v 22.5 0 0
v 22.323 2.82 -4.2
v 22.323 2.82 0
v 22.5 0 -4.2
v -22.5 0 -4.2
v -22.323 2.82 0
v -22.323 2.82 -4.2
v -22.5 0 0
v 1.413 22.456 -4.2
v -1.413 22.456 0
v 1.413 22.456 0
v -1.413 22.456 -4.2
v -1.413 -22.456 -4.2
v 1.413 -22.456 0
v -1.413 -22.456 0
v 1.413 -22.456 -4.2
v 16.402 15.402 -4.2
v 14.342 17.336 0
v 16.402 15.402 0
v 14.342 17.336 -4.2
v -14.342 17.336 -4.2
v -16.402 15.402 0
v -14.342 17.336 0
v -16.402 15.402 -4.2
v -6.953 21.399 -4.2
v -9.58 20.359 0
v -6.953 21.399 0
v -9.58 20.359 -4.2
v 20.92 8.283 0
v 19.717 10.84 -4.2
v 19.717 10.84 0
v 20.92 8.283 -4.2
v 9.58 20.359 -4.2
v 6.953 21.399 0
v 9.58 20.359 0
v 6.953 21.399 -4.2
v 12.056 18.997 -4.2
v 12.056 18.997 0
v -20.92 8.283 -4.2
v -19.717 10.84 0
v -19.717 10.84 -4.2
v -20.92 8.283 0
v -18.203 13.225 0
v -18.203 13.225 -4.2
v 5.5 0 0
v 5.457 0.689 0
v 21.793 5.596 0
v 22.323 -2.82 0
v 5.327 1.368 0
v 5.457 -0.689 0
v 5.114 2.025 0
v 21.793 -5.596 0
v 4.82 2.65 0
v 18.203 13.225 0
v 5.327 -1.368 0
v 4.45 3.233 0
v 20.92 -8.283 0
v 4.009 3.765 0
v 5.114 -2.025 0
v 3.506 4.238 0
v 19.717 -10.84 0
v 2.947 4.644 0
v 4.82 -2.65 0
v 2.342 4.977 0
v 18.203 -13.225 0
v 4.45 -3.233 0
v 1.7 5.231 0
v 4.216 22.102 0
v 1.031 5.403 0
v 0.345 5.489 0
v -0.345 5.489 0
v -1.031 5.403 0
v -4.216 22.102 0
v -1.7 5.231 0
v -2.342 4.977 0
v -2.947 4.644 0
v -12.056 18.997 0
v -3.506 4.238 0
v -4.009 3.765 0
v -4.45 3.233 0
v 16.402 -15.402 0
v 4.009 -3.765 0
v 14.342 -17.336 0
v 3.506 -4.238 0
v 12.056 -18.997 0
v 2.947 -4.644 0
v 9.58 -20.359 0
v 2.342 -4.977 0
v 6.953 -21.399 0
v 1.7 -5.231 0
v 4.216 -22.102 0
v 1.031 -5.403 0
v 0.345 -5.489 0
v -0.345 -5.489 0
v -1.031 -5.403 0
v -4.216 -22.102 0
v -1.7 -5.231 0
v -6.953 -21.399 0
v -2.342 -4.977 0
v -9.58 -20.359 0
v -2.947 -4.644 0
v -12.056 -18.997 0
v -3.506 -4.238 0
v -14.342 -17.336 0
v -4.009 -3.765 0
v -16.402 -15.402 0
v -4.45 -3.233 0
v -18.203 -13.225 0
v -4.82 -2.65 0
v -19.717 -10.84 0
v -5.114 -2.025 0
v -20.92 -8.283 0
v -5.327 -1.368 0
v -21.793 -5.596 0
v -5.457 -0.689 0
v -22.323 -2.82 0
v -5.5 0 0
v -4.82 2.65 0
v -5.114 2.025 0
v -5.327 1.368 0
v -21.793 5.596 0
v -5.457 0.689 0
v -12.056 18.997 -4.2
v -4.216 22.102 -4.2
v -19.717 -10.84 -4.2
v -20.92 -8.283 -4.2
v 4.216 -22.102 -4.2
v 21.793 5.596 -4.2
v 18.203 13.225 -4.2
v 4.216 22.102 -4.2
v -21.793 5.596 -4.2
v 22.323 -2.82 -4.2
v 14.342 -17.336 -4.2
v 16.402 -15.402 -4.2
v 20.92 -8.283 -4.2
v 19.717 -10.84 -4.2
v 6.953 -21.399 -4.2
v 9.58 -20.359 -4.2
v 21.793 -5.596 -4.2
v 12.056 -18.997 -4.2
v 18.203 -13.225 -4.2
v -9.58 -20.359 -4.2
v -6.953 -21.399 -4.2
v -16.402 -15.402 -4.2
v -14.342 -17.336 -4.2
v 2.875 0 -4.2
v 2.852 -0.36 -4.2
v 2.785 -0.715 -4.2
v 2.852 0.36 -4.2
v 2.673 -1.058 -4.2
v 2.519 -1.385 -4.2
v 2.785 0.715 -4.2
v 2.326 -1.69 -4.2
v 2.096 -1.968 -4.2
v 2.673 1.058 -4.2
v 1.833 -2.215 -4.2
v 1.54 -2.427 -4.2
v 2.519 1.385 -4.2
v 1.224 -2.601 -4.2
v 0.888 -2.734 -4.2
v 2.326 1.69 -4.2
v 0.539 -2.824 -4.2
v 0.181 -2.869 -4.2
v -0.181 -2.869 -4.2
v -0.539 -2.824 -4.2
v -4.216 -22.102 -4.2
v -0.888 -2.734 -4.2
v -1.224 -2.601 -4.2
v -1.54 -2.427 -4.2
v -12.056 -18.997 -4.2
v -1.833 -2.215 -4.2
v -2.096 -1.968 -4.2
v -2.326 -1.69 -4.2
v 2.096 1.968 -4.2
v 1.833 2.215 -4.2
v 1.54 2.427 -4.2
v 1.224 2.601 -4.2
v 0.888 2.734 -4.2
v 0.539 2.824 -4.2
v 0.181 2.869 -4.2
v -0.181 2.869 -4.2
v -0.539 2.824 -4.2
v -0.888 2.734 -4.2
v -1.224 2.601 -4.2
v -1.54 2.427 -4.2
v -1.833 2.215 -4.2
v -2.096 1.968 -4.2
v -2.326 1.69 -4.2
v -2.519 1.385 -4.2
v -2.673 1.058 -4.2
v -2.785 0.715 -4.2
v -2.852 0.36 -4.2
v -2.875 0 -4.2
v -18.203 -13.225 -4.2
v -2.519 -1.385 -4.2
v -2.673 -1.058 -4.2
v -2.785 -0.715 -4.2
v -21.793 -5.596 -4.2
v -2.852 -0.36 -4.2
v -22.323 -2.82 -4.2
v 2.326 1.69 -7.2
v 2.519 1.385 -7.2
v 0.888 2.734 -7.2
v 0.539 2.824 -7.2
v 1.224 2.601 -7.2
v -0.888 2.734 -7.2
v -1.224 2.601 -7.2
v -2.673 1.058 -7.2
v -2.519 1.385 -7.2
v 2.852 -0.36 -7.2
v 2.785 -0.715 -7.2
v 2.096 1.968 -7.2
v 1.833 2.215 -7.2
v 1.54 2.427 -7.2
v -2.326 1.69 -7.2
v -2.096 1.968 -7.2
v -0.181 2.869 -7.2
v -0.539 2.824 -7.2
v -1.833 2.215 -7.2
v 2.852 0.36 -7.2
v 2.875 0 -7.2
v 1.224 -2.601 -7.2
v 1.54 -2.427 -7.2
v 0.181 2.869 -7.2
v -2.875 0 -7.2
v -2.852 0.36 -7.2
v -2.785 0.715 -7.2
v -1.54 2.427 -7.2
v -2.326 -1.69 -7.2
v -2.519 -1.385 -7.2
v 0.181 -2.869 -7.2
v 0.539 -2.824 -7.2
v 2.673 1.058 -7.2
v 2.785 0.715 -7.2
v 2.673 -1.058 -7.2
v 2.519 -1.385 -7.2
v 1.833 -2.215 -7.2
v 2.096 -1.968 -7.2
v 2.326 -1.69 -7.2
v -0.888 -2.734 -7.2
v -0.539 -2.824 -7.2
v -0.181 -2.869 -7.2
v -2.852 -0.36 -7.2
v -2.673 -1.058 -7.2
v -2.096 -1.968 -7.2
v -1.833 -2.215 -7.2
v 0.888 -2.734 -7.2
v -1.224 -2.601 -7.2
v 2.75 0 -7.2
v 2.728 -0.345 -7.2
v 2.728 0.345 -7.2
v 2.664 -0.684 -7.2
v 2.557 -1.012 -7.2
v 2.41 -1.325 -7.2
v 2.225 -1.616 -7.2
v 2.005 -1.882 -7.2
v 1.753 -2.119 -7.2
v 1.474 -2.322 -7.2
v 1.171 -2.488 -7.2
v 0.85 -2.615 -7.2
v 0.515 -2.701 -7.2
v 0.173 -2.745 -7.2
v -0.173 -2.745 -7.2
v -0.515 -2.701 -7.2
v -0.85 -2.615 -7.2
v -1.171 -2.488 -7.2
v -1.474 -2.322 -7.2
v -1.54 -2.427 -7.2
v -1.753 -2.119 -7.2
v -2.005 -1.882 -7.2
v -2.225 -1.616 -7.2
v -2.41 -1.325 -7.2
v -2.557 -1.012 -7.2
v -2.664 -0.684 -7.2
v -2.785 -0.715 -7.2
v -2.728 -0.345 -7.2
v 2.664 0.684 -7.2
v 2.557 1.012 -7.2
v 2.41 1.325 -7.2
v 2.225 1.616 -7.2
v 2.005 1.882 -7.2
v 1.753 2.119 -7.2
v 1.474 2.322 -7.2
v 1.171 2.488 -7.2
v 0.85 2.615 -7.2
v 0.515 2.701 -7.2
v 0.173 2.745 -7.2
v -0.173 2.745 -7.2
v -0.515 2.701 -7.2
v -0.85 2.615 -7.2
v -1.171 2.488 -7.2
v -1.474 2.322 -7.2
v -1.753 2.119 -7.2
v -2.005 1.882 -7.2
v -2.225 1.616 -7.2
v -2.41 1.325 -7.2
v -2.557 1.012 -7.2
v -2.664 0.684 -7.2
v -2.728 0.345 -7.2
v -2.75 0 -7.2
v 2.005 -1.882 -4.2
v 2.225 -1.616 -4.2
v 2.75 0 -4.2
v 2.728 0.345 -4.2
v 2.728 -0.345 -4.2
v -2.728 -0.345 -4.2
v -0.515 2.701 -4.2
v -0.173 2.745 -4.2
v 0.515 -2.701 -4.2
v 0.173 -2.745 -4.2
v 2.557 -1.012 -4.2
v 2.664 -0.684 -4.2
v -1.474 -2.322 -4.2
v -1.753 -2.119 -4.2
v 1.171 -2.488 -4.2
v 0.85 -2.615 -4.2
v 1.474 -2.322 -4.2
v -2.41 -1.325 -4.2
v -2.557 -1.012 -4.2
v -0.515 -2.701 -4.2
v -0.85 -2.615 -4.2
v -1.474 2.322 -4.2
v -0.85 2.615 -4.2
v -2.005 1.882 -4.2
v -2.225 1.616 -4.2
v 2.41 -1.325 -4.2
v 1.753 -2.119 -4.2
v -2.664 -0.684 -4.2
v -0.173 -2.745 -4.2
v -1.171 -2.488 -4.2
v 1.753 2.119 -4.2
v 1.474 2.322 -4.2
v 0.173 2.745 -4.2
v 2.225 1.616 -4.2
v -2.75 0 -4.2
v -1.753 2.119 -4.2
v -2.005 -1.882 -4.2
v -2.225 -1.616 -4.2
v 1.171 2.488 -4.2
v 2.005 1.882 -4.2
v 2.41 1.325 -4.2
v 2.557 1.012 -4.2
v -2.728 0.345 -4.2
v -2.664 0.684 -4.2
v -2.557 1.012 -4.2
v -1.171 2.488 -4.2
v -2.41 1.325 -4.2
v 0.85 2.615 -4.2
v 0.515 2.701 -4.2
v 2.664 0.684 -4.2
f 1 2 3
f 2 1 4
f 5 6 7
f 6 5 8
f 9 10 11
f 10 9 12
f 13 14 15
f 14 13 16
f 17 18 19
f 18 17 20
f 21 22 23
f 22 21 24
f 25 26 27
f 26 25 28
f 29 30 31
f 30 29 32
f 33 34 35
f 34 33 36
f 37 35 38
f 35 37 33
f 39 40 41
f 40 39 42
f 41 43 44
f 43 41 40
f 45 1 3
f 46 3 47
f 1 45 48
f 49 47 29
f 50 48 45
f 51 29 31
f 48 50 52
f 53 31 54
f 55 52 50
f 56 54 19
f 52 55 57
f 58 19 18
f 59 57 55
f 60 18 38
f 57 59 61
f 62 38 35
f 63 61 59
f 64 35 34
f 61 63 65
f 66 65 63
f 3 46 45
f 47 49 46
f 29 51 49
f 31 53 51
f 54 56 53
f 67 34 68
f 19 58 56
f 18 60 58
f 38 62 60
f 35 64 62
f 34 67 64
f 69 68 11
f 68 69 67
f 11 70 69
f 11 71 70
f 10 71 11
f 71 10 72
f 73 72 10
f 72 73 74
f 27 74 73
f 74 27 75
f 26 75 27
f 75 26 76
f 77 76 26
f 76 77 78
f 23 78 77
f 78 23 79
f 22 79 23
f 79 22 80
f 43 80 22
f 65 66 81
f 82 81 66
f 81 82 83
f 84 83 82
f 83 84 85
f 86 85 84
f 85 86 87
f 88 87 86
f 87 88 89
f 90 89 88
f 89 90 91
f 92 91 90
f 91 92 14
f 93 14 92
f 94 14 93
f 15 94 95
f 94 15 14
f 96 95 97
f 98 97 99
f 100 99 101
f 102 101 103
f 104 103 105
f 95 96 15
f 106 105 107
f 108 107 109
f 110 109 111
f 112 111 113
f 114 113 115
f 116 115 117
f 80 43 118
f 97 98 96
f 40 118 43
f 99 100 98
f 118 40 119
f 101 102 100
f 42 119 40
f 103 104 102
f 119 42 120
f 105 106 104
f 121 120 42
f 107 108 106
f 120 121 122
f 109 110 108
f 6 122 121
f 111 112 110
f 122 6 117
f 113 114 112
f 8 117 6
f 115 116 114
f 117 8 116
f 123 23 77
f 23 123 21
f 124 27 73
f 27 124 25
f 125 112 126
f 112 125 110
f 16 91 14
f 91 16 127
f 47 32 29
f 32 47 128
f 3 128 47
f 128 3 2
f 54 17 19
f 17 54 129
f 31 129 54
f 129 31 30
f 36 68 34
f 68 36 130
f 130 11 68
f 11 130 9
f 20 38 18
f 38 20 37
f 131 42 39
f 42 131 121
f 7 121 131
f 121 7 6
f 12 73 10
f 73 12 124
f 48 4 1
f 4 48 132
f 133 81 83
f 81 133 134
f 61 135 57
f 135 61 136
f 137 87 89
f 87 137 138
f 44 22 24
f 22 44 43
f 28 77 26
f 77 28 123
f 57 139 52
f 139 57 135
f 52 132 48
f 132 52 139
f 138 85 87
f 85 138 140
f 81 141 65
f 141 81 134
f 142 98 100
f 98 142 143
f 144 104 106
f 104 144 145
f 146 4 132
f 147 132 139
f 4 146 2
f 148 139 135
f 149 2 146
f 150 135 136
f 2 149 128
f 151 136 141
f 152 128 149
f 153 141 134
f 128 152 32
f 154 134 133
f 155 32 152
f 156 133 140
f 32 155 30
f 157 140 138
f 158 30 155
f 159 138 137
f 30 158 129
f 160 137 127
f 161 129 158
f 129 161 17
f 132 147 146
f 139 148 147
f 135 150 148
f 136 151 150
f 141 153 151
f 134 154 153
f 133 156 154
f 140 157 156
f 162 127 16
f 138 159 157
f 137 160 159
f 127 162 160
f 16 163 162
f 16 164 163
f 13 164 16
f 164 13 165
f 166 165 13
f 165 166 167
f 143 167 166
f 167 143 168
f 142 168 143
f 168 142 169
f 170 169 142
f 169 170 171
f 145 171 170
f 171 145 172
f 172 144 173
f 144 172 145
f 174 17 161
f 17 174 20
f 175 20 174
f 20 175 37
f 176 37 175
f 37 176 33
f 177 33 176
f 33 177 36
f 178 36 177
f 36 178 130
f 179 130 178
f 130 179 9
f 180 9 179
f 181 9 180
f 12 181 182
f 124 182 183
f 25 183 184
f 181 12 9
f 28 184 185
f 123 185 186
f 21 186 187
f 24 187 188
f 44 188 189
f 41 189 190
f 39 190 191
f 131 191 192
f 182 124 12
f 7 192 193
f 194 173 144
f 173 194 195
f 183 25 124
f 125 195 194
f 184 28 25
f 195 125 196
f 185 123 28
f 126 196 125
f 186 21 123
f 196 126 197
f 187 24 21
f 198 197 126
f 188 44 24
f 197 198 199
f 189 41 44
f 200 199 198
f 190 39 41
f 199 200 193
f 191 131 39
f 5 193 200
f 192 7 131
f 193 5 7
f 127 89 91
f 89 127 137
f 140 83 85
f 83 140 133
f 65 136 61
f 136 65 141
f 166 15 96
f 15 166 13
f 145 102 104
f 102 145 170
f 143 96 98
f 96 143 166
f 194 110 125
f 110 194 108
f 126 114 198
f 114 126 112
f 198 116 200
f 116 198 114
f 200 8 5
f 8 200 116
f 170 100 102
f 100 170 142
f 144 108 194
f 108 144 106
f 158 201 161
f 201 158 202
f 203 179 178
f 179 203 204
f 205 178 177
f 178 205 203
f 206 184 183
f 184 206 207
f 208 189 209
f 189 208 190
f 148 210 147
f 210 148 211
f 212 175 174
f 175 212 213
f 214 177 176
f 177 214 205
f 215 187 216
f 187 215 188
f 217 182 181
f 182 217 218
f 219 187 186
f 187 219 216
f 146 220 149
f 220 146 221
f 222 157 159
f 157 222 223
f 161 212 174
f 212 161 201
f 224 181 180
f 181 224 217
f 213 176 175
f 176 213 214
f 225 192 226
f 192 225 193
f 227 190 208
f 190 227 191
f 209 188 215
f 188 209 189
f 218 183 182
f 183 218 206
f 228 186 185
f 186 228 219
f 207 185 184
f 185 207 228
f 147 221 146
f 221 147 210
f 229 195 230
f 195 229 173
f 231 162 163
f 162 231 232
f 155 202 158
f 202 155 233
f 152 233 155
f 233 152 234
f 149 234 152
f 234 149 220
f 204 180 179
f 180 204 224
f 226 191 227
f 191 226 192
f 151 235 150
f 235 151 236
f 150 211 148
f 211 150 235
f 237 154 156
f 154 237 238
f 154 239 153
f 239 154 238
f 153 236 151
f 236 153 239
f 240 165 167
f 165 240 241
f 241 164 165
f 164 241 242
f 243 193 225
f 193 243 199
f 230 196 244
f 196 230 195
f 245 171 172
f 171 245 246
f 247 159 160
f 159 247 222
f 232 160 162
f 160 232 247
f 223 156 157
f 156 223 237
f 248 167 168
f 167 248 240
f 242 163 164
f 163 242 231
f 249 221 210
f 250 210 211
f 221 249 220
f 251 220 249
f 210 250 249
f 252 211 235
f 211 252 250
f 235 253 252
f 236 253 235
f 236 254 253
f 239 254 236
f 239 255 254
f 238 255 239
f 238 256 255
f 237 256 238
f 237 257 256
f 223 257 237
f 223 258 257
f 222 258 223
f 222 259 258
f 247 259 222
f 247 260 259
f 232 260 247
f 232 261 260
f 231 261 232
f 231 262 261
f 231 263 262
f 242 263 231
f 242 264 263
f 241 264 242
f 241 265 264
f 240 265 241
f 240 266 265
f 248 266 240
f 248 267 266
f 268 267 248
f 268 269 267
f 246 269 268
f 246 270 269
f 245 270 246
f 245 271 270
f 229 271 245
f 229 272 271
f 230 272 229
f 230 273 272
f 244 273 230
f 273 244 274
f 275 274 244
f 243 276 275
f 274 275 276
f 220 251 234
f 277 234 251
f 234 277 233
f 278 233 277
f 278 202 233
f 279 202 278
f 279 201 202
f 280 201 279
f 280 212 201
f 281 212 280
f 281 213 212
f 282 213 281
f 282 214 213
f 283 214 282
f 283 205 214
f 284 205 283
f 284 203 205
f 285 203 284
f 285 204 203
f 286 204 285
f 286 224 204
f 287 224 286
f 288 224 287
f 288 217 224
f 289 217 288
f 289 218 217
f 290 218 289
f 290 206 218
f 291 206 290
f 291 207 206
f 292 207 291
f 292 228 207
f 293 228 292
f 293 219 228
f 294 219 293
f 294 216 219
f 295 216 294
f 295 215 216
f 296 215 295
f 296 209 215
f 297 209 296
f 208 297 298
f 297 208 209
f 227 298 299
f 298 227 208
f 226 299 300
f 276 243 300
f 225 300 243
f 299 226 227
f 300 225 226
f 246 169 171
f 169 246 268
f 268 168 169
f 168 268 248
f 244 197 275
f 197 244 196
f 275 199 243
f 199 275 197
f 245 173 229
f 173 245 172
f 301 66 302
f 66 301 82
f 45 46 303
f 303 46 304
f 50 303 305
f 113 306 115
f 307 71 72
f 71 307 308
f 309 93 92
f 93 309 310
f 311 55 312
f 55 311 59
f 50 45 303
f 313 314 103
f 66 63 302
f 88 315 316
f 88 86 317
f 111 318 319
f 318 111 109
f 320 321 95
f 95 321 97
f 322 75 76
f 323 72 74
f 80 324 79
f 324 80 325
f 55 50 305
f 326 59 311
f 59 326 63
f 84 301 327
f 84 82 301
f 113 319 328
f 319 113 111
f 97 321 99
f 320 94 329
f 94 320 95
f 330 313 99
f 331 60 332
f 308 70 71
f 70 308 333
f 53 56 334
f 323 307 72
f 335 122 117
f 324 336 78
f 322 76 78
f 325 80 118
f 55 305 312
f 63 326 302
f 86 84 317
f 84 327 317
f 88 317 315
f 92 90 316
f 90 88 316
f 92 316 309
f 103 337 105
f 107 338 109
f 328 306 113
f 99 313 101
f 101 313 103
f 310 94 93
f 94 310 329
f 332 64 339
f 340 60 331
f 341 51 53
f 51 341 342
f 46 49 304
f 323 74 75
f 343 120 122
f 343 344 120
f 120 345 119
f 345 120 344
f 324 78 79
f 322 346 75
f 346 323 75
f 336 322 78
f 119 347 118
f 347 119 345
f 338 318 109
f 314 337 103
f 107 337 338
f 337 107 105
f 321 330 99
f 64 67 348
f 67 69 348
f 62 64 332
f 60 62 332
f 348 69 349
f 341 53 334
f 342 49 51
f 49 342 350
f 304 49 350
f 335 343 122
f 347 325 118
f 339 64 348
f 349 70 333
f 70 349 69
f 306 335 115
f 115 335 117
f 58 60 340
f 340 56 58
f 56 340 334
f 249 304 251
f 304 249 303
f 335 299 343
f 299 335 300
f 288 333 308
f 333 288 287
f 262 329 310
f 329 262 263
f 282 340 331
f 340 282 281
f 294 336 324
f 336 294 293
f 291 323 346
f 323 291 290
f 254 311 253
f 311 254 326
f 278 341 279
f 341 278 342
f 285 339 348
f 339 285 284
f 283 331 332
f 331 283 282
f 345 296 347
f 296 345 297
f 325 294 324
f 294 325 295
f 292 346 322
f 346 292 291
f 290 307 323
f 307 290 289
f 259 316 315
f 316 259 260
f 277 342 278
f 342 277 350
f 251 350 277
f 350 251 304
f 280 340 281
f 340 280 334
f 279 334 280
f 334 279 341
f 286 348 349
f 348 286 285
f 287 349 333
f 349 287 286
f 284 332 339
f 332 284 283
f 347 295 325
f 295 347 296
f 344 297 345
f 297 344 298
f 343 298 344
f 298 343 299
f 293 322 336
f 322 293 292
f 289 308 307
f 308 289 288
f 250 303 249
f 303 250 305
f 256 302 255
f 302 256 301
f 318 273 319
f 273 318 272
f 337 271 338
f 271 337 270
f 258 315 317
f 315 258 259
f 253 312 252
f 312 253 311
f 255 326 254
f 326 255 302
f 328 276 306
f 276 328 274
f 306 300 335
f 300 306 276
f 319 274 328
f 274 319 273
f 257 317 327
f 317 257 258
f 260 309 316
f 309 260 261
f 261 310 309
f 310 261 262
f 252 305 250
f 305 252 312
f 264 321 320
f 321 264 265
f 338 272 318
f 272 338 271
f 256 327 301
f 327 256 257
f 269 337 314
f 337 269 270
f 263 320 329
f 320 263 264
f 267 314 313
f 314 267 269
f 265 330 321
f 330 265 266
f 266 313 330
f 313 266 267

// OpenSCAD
$fn = 50;

difference() {
	union() {
		translate(v = [0, 0, -4.2]) {
			cylinder(h = 4.2, r = 22.5);
		}
		#translate(v = [0, 0, -7.2]) {
			cylinder(h = 7.2, r = 2.875);
		}
	}
	union() {
		translate(v = [0, 0, 0]) {
			rotate(a = [0, 0, 0]) {
				difference() {
					union() {
						translate(v = [0, 0, -7.2]) {
							cylinder(h = 7.2, r = 2.25);
						}
						translate(v = [0, 0, -4.2]) {
							cylinder(h = 4.2, r1 = 2.75, r2 = 5.5);
						}
						translate(v = [0, 0, -7.2]) {
							cylinder(h = 7.2, r = 2.75);
						}
						translate(v = [0, 0, -7.2]) {
							cylinder(h = 7.2, r = 2.25);
						}
					}
					union();
				}
			}
		}
	}
}
